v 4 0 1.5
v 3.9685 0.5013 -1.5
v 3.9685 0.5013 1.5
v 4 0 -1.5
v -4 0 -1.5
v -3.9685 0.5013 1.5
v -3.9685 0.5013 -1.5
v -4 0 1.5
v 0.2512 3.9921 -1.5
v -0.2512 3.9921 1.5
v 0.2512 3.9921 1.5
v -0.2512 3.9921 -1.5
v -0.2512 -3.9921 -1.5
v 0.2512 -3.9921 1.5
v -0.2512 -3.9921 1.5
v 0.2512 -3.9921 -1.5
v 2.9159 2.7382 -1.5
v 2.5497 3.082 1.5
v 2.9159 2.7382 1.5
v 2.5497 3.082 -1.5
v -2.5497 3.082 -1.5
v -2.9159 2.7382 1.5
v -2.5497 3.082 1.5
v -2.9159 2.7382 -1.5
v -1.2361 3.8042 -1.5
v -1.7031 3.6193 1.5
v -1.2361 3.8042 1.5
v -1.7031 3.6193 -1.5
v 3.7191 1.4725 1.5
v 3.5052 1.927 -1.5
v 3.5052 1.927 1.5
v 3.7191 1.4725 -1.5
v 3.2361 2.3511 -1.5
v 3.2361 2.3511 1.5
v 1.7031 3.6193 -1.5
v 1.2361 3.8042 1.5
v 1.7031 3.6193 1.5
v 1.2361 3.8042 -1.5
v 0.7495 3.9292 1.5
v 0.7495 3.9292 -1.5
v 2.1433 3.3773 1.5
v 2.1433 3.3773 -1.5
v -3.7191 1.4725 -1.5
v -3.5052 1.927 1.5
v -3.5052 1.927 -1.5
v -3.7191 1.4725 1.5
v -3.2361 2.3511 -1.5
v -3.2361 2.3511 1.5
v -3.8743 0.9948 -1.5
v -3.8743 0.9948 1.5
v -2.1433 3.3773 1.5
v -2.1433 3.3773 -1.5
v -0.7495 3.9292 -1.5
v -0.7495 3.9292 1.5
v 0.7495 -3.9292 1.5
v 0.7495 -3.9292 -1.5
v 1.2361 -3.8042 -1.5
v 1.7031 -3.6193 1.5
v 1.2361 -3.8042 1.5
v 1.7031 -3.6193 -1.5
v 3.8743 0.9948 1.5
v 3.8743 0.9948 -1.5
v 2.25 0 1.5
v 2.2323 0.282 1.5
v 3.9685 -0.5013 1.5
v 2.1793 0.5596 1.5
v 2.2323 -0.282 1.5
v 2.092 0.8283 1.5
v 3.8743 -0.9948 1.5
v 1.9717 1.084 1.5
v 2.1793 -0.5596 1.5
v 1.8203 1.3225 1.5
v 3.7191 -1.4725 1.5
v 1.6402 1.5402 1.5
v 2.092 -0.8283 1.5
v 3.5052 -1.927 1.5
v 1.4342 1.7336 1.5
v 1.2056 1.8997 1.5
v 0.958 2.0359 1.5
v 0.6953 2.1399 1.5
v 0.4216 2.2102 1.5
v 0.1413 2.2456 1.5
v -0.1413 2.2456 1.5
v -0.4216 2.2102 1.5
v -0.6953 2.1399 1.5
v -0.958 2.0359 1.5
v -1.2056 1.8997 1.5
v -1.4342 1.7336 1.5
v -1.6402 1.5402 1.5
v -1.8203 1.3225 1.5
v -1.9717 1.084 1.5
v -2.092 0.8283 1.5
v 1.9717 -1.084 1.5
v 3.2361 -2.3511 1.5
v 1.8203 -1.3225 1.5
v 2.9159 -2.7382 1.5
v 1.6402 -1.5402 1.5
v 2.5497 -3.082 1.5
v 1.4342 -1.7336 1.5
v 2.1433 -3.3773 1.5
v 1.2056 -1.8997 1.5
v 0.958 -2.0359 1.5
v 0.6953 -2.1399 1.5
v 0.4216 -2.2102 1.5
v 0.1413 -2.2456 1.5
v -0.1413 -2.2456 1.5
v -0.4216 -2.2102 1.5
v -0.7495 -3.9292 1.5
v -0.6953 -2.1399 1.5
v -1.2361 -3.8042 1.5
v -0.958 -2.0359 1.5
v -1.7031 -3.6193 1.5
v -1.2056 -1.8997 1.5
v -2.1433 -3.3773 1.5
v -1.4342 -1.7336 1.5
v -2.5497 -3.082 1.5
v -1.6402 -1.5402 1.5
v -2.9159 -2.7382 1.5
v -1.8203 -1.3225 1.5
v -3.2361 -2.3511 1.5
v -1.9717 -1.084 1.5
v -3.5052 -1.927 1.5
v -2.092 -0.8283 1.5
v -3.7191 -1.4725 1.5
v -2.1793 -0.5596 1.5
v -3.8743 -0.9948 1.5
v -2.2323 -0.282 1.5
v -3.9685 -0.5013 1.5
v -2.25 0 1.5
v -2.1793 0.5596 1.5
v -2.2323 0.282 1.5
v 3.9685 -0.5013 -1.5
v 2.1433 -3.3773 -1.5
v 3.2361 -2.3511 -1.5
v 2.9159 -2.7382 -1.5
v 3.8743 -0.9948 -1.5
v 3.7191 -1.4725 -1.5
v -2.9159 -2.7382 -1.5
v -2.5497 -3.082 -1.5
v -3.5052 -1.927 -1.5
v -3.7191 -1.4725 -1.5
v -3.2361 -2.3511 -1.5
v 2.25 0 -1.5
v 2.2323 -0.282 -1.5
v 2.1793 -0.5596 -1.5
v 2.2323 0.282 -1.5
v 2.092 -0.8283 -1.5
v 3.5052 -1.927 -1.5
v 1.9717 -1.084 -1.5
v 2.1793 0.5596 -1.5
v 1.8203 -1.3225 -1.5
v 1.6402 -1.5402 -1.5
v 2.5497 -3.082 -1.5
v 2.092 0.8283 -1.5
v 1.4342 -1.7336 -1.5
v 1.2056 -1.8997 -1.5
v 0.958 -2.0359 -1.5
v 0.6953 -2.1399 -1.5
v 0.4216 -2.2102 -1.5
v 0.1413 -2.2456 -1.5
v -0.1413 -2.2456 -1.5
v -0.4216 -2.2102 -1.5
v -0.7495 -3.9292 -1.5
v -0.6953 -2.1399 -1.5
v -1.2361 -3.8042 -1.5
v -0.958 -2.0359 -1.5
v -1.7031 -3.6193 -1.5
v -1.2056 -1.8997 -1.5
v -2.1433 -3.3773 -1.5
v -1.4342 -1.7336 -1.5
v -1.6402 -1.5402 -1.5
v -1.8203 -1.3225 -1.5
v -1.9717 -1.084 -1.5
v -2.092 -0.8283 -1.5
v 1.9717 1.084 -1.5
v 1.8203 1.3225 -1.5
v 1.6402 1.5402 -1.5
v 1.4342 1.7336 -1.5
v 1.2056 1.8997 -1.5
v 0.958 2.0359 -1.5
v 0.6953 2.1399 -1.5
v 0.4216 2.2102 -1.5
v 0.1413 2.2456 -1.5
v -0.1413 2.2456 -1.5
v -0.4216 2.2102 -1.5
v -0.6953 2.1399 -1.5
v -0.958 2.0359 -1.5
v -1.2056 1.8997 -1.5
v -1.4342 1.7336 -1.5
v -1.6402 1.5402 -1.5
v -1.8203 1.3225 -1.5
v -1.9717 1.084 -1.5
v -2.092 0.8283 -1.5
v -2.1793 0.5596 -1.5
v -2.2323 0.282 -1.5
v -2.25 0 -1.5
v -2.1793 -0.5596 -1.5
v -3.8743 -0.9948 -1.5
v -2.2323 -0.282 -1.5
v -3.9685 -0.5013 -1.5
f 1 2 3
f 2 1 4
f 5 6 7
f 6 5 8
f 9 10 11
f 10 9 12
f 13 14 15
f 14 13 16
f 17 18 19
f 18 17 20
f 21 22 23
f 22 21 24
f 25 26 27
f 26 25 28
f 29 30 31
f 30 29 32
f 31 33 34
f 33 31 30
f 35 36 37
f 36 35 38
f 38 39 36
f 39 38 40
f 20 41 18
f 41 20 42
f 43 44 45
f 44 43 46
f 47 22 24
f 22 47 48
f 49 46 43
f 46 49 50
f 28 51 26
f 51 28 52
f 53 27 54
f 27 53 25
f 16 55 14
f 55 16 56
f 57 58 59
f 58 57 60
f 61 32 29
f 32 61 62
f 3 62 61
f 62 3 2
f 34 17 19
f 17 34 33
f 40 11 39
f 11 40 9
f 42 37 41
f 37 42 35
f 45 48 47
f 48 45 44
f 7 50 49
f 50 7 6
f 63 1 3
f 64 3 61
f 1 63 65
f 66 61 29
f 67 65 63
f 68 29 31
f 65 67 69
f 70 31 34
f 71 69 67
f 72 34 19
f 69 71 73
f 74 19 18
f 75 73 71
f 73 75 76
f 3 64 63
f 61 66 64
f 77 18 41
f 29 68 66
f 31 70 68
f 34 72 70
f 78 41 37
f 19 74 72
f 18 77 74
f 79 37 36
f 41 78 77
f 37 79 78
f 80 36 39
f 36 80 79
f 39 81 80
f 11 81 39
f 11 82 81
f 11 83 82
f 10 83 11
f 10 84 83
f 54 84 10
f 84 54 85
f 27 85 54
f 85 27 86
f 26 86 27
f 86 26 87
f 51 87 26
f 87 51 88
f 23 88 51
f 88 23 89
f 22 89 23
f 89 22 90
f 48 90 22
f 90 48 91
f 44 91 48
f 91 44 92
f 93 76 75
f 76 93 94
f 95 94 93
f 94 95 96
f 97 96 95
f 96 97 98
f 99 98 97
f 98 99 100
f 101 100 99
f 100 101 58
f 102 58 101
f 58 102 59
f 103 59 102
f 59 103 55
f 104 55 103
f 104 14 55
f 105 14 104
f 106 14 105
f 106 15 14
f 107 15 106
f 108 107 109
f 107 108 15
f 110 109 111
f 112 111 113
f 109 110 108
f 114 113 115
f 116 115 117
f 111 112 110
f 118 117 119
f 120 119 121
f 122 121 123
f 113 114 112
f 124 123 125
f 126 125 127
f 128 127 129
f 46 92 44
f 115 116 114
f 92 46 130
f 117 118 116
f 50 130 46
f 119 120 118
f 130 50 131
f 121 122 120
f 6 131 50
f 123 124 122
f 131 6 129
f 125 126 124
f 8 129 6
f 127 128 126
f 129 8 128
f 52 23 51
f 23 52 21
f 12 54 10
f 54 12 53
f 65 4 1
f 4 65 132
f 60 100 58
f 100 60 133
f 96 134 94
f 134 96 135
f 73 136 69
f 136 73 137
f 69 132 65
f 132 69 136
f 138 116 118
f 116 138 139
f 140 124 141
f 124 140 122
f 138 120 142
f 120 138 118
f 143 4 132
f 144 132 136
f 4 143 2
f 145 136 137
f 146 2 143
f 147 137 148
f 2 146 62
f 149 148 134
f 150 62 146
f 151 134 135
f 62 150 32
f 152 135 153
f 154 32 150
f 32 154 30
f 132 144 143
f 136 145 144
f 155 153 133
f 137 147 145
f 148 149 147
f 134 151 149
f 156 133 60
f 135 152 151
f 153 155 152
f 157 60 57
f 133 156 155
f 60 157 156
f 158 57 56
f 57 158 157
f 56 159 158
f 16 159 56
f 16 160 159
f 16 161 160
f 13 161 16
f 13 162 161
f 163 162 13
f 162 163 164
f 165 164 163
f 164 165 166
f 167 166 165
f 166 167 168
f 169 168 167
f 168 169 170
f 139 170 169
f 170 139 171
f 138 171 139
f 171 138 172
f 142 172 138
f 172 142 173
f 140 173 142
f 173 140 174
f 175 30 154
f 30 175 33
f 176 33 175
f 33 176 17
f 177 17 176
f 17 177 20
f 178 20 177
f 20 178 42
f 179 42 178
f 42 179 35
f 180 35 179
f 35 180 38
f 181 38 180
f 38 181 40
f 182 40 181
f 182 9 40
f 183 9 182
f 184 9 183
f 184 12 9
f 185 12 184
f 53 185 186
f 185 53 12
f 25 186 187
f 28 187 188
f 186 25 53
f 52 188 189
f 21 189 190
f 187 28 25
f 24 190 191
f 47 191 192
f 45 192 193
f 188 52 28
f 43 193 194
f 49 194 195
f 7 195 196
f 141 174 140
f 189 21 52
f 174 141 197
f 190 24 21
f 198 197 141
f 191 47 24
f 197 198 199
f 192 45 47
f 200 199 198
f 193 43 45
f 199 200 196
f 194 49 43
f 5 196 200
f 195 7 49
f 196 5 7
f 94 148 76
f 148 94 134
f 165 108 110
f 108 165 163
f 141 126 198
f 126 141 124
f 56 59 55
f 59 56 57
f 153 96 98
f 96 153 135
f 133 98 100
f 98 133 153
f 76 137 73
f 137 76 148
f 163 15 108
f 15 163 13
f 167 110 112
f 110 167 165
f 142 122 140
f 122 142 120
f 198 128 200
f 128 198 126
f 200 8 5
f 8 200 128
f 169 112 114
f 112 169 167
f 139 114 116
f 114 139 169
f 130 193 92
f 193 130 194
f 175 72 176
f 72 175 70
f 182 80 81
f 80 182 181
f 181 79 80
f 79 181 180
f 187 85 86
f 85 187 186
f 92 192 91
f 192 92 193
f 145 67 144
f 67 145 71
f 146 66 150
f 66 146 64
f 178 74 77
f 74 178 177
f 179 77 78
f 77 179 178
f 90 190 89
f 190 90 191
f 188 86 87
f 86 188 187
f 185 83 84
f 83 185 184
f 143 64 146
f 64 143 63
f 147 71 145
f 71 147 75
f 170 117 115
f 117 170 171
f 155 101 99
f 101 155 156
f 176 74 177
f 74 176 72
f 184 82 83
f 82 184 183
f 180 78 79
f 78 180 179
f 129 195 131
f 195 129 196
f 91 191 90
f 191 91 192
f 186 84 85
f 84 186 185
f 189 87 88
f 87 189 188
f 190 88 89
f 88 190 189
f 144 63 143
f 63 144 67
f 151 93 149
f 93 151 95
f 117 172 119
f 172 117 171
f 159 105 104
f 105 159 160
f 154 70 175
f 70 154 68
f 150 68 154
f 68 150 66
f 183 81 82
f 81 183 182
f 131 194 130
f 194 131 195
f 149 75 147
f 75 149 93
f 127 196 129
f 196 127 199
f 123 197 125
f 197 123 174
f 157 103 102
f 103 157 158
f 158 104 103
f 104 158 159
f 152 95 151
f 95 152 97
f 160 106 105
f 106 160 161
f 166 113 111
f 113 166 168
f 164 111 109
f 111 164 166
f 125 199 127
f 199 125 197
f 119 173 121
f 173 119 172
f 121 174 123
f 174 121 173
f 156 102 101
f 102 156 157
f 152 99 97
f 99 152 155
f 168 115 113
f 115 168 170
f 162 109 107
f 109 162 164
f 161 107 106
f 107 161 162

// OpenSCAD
$fn = 50;


difference() {
	union() {
		translate(v = [0, 0, -1.5000000000]) {
			cylinder(h = 3, r = 4.0000000000);
		}
	}
	union() {
		translate(v = [0, 0, -100.0000000000]) {
			cylinder(h = 200, r = 2.2500000000);
		}
	}
}
